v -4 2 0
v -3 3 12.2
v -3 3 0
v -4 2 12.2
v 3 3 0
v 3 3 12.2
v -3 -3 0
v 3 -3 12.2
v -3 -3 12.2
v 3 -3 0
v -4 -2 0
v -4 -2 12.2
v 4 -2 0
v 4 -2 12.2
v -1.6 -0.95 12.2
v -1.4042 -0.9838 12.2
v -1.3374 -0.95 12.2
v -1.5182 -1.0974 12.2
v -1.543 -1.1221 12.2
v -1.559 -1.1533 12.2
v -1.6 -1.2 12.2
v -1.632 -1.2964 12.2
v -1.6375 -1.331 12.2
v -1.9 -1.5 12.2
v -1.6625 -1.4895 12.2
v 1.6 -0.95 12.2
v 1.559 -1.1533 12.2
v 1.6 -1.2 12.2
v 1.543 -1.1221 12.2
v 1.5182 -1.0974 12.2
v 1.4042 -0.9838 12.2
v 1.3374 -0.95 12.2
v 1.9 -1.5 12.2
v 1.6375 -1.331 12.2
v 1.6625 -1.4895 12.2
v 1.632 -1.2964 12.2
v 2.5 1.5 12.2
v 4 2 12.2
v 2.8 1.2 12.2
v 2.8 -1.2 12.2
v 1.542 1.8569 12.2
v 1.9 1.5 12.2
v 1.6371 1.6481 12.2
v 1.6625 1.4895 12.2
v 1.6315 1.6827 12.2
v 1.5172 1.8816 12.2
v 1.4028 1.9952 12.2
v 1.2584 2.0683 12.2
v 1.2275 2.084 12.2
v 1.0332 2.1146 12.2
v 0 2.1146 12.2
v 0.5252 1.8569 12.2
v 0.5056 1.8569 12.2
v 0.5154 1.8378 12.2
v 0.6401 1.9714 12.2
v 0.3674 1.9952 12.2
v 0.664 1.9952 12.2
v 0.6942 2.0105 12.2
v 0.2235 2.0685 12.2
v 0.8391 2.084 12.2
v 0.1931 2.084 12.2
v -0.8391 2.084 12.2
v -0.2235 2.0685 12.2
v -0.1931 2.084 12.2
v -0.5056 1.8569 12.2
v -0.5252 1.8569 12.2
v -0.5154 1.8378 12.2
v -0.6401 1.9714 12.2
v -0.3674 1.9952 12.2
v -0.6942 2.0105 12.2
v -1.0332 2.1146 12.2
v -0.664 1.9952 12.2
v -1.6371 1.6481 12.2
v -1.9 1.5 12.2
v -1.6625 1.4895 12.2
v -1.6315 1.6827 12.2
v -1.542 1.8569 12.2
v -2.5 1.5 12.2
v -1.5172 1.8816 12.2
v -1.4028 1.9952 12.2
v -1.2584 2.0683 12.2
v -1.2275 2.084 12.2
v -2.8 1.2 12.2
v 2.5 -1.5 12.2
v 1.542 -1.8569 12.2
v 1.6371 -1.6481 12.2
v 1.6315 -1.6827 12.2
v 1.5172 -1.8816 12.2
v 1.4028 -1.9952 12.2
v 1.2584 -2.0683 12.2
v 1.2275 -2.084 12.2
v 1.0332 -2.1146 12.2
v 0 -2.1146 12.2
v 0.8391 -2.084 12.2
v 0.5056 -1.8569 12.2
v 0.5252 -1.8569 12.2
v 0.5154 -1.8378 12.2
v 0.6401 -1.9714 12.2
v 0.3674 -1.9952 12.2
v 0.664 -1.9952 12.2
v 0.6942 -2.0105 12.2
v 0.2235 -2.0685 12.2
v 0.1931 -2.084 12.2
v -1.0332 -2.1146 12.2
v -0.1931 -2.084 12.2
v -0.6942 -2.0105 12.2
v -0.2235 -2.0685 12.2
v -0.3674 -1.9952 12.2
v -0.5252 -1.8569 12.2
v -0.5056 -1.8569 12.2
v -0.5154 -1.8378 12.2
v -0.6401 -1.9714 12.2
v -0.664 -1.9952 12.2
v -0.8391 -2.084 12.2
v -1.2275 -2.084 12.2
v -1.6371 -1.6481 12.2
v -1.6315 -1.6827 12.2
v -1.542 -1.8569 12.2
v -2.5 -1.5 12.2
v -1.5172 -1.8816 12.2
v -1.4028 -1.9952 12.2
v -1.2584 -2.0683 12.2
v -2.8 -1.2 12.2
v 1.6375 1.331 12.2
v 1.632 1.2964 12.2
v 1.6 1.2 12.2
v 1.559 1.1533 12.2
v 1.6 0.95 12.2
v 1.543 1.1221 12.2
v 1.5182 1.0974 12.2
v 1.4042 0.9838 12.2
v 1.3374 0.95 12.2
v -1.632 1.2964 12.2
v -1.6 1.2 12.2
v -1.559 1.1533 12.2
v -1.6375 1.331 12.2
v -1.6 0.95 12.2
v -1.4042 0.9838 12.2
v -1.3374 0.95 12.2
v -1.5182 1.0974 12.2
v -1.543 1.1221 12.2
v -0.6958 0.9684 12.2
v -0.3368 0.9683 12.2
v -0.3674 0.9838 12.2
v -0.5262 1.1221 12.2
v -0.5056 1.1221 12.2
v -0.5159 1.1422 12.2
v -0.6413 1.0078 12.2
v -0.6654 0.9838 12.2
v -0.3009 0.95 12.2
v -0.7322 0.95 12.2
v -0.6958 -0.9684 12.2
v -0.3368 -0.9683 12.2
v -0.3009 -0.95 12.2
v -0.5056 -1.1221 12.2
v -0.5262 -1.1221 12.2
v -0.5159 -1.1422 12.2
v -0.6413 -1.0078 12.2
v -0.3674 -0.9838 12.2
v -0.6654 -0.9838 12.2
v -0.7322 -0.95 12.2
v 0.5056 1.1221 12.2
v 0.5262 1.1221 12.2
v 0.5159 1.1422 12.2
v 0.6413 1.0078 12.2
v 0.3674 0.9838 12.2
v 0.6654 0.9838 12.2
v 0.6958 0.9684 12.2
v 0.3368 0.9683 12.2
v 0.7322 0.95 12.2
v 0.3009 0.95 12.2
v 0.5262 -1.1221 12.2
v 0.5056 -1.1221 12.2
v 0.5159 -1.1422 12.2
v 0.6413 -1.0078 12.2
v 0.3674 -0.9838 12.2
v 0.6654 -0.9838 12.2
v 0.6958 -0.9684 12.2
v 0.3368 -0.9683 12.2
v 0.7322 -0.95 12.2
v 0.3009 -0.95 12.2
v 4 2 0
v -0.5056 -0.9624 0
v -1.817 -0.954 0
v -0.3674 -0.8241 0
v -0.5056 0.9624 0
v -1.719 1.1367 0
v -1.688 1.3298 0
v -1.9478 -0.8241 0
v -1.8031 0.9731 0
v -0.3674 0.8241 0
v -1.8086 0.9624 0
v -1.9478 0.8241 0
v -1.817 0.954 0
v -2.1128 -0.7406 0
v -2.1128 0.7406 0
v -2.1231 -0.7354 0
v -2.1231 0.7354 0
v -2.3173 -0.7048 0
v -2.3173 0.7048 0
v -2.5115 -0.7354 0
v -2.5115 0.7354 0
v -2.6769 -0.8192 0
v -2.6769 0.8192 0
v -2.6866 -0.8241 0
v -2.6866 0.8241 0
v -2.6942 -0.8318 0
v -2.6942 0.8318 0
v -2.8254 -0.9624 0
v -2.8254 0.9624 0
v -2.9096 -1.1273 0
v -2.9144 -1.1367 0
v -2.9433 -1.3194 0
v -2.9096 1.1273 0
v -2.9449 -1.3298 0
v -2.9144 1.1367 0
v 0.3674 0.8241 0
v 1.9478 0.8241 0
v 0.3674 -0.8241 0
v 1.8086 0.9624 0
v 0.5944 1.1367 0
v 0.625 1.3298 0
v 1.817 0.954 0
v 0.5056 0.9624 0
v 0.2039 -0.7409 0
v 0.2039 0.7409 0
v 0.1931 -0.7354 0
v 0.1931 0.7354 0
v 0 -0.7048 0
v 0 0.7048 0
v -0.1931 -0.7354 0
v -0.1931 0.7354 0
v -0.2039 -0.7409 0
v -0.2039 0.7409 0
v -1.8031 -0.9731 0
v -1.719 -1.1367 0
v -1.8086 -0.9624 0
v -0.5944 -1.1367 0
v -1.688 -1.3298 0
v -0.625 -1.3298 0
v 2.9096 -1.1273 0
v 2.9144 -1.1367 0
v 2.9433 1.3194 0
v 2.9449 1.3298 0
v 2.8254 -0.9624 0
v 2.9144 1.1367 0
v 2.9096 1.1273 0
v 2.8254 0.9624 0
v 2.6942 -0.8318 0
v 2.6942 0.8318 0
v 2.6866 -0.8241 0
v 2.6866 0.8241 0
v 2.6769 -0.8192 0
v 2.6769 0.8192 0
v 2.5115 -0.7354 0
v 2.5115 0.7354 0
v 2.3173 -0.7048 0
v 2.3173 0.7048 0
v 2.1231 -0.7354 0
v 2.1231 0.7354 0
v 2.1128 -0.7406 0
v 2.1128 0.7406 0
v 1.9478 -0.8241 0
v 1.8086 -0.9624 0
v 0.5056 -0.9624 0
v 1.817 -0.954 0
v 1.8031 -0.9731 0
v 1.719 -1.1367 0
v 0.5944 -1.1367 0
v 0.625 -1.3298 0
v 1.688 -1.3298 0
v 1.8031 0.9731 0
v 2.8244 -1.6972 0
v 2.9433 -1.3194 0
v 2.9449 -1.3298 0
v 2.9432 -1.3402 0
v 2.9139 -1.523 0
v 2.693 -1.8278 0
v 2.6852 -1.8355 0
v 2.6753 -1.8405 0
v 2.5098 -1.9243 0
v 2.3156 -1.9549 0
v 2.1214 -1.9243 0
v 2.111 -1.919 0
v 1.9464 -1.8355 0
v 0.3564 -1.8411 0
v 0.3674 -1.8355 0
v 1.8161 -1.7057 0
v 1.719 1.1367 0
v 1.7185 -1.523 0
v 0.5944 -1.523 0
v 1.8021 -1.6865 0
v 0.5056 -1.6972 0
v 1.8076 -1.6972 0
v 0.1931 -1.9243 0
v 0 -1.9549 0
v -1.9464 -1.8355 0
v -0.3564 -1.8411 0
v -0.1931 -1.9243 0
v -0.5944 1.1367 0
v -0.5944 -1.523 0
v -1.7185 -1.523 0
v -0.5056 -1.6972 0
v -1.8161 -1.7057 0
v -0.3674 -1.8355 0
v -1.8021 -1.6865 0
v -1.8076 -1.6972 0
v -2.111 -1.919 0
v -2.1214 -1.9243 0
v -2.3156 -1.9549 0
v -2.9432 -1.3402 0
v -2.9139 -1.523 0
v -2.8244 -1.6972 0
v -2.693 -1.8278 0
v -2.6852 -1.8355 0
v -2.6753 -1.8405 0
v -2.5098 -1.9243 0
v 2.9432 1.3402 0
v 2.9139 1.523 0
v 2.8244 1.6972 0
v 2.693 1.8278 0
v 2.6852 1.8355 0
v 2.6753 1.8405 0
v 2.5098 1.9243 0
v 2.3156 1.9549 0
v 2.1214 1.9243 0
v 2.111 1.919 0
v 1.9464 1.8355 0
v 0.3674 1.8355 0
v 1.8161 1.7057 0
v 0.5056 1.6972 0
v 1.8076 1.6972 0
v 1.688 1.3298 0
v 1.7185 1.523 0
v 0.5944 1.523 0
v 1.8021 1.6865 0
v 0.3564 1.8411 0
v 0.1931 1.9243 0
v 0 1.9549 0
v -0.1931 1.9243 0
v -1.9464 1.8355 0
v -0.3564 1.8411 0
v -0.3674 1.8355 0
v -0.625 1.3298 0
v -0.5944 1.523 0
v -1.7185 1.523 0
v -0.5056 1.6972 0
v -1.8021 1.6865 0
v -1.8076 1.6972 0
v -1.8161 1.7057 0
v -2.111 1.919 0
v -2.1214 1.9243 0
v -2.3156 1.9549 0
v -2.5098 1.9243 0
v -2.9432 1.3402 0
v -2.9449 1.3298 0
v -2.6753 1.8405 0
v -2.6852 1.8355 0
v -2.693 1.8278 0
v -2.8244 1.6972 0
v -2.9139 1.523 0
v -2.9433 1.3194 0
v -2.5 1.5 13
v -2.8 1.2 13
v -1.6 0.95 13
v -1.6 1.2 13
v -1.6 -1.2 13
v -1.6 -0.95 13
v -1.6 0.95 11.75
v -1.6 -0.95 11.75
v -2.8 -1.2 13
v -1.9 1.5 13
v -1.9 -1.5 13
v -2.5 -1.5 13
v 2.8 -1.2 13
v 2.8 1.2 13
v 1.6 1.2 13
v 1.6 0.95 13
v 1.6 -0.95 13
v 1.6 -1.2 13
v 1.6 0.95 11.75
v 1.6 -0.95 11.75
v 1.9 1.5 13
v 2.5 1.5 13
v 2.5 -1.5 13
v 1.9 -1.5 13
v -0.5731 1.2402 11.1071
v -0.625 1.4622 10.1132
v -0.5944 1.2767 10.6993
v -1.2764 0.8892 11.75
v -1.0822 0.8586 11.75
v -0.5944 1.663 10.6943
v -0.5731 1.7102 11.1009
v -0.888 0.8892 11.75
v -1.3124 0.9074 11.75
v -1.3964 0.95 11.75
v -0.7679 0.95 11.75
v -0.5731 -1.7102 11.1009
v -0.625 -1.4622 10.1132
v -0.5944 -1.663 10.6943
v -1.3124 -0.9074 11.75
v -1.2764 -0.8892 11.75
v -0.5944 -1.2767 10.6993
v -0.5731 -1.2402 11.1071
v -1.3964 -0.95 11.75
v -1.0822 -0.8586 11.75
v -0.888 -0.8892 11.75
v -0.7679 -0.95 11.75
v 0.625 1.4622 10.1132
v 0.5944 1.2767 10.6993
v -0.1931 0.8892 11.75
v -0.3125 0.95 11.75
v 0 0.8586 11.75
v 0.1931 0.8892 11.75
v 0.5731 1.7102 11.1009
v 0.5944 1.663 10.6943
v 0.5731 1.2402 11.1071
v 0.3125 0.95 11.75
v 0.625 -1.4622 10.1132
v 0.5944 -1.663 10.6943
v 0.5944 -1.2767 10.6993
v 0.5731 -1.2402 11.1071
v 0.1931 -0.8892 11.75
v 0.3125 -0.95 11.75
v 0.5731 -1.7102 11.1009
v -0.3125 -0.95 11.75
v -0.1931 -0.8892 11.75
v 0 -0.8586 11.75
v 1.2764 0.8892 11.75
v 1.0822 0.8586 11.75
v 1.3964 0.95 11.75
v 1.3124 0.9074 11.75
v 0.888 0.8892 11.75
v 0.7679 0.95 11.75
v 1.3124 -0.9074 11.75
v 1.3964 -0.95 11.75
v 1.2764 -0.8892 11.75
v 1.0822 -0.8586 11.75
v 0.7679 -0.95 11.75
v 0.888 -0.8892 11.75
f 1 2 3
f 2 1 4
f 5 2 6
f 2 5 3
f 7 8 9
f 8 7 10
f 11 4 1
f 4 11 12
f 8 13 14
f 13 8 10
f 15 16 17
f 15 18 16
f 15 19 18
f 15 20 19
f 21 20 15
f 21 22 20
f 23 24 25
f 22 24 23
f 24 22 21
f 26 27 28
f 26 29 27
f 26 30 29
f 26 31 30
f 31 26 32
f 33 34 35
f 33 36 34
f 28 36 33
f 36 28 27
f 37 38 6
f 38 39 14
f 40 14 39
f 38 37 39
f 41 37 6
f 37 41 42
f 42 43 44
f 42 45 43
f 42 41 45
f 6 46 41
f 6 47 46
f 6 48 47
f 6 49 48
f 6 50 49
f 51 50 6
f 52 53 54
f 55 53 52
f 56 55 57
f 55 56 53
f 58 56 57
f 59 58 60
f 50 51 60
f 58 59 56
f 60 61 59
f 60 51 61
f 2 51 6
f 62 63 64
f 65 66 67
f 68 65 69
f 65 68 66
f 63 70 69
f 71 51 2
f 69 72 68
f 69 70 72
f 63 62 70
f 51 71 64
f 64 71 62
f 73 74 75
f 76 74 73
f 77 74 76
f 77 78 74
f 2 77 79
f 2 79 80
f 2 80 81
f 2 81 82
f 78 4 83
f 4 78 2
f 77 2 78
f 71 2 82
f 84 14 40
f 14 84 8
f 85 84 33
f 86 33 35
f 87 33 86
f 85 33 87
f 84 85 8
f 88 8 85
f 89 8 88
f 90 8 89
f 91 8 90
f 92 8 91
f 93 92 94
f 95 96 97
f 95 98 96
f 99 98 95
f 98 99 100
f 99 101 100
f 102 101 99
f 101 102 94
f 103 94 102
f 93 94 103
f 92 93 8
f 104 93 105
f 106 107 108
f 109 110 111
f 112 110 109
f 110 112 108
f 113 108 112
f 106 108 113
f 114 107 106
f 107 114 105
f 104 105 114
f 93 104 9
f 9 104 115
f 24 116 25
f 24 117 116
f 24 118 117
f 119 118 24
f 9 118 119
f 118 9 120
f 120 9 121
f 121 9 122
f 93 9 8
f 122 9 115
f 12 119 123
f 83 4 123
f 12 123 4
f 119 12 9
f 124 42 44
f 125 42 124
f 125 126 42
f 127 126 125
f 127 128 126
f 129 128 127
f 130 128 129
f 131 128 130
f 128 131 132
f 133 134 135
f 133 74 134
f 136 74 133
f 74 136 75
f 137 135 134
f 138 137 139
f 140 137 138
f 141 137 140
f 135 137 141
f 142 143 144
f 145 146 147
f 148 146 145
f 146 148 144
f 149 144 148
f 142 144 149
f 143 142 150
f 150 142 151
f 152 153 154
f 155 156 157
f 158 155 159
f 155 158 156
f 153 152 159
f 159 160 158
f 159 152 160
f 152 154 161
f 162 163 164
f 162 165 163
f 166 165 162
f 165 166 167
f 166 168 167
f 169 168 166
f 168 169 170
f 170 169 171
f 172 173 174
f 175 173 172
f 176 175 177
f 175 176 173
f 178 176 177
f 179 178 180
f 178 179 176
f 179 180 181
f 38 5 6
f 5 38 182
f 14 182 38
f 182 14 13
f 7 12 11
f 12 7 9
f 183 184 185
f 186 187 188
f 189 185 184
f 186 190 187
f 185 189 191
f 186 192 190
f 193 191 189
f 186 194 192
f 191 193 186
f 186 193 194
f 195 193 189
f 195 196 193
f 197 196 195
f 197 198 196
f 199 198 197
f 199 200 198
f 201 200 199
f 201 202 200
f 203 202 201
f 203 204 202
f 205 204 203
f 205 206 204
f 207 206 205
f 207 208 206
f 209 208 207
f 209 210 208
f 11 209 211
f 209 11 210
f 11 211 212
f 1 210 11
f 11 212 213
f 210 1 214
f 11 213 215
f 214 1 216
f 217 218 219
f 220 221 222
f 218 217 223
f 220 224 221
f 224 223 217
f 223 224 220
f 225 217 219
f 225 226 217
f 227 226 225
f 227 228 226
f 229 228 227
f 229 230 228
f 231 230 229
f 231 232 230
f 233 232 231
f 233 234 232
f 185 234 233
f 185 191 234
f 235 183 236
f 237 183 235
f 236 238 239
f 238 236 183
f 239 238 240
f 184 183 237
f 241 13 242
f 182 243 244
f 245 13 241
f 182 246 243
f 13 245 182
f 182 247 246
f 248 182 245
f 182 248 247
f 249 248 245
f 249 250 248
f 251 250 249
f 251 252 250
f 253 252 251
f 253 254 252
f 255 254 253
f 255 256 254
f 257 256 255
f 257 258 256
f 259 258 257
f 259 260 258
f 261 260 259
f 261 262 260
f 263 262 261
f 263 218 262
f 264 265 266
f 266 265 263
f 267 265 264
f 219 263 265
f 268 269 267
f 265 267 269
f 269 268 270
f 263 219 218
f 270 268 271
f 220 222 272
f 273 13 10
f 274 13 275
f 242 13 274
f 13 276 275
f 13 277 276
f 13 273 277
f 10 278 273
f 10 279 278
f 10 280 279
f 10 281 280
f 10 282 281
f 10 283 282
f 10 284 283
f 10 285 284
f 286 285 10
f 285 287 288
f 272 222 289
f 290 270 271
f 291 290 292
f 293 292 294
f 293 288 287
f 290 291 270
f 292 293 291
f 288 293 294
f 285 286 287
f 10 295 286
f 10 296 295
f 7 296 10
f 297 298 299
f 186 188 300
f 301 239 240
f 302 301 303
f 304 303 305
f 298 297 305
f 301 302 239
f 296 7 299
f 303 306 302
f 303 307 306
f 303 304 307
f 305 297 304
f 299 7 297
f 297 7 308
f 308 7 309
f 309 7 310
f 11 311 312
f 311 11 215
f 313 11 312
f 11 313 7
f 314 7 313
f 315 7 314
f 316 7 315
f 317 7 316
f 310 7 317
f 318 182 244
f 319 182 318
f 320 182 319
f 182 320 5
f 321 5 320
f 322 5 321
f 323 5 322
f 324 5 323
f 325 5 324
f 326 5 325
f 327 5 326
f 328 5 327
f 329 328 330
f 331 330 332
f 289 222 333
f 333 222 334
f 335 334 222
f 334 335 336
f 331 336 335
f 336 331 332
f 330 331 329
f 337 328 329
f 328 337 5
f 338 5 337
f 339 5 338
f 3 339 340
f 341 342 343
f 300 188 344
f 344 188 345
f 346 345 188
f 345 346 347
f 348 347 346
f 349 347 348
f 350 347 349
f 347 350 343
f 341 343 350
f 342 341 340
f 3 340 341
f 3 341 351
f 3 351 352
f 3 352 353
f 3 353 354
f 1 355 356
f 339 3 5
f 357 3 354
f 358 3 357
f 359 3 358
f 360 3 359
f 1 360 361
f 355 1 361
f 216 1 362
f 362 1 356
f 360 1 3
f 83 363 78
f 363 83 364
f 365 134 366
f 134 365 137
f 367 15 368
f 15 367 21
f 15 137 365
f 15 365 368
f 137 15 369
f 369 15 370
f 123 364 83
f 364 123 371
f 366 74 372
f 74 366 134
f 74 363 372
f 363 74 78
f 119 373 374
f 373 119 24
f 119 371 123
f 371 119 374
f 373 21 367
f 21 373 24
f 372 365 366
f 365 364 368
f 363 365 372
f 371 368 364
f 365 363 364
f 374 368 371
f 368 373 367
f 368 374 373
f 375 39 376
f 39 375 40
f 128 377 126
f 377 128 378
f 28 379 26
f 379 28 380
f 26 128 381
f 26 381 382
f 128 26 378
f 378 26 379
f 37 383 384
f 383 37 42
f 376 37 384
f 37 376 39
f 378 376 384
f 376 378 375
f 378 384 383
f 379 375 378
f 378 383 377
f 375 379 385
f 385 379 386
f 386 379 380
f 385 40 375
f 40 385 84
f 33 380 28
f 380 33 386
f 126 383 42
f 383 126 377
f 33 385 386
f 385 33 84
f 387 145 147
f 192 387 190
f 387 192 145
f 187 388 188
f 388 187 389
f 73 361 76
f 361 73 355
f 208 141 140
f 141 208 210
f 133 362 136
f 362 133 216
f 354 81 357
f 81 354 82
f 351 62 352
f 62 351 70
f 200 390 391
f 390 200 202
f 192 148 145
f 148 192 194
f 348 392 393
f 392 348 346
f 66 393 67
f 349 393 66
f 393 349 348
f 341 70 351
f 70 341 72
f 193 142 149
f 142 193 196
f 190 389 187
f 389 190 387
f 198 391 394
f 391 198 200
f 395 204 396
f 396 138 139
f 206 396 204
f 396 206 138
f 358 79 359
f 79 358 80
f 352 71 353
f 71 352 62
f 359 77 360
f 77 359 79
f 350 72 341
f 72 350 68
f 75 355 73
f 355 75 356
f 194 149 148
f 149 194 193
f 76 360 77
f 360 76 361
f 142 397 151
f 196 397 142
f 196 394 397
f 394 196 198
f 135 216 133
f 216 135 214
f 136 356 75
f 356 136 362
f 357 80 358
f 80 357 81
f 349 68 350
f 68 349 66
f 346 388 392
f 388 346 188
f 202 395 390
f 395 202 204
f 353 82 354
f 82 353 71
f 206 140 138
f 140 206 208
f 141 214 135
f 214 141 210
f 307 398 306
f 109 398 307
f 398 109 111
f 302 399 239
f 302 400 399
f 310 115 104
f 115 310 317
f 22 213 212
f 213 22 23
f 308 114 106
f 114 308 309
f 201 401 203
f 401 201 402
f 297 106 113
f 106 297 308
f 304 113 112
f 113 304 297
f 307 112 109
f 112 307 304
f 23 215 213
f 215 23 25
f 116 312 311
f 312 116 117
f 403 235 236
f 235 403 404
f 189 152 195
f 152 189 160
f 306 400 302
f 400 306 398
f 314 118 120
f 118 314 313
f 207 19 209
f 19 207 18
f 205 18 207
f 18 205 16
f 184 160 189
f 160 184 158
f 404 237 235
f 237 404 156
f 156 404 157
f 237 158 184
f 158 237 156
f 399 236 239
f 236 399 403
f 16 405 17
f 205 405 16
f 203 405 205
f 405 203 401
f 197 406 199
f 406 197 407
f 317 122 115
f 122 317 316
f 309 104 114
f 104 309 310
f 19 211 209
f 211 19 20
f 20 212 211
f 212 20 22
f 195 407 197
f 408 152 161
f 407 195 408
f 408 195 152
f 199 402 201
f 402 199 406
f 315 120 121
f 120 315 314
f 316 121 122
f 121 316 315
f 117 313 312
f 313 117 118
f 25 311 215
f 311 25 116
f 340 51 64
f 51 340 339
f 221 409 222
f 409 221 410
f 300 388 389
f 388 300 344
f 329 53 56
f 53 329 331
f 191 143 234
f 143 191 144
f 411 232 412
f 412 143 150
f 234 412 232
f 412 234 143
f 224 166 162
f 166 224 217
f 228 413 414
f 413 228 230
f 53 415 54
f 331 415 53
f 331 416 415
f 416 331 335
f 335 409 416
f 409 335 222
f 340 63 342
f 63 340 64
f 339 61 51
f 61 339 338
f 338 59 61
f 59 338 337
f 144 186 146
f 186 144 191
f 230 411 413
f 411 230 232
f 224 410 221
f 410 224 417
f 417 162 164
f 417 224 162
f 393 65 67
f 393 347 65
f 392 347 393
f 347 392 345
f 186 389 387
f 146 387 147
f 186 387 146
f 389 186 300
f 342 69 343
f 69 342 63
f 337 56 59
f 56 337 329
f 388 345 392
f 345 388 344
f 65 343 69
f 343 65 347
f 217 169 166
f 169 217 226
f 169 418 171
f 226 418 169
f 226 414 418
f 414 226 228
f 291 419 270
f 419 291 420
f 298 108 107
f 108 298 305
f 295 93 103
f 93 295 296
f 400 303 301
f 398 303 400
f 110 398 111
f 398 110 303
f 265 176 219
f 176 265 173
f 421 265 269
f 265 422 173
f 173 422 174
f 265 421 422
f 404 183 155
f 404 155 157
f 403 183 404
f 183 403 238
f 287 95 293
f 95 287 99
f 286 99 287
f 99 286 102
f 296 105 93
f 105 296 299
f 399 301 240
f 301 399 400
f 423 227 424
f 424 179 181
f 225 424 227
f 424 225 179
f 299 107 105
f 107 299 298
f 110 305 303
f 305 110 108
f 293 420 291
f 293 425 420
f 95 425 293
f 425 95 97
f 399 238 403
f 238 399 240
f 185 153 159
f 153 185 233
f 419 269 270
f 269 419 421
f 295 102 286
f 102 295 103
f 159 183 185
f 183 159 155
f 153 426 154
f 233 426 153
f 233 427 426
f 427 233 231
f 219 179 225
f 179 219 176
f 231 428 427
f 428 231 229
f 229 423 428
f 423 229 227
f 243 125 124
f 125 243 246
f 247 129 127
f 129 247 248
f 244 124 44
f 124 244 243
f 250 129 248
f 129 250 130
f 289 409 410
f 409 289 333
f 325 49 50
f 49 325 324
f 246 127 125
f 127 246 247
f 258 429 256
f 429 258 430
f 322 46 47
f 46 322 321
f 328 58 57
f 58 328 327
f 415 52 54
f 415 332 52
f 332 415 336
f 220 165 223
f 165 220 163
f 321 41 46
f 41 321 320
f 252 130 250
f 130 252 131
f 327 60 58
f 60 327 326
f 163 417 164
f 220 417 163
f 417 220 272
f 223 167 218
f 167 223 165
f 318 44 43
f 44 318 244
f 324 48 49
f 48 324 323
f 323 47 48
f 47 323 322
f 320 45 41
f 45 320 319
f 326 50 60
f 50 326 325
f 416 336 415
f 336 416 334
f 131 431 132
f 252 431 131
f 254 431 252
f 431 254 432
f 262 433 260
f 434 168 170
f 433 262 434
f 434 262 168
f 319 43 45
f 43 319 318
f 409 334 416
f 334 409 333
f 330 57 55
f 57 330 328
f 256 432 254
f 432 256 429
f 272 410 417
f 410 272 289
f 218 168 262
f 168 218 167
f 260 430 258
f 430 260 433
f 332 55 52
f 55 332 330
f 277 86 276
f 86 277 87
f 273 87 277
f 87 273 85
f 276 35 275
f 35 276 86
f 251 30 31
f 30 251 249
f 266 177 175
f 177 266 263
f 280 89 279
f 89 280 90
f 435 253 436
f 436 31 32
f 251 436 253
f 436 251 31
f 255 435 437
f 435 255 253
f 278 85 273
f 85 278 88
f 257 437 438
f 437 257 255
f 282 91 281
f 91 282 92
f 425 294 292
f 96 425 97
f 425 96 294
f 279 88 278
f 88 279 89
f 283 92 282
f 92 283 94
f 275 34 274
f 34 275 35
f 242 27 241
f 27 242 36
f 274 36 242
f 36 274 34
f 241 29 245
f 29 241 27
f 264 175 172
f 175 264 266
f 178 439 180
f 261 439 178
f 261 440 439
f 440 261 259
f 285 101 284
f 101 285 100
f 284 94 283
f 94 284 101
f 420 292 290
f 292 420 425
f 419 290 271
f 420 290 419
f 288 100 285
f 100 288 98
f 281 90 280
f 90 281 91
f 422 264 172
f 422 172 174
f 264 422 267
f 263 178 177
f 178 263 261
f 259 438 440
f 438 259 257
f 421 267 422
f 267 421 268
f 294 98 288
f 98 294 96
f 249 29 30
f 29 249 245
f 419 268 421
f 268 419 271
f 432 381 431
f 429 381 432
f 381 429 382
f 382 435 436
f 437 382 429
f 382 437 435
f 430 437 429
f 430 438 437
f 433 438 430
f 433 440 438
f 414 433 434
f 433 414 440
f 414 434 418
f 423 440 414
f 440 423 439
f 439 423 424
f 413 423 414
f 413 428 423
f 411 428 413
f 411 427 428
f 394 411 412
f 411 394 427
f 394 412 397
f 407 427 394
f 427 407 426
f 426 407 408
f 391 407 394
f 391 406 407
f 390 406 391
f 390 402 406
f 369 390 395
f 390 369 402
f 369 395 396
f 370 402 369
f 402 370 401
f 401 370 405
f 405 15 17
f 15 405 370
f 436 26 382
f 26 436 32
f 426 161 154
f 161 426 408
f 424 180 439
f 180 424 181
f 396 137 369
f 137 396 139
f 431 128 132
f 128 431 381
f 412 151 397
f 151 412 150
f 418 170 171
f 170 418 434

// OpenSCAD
// file: lib/utils.scad
module xz_toward_y()
{
	scale([1, 1, -1])
	rotate([-90,0,0])
	children();
}

module anchor(dim, anchor=[0,0,0])
{
	translate([-(1+anchor.x)*dim.x/2, -(1+anchor.y)*dim.y/2, -(1+anchor.z)*dim.z/2])
	children();
}

module block(dim, anchor=[0,0,0])
{
	anchor(dim, anchor)
	cube(dim);
}

module rounded_block_z(dim, anchor=[0,0,0], r=0)
{
	anchor(dim, anchor)
	linear_extrude(dim.z)
	hull()
	for (p=[ [r,r], [dim.x-r, r], [dim.x-r, dim.y-r], [r, dim.y-r] ] )
	translate(p)
	circle(r);
}

module rounded_block_y(dim, anchor=[0,0,0], r=0)
{
	anchor(dim, anchor)
	xz_toward_y()
	linear_extrude(dim.y)
	hull()
	for (p=[ [r,r], [dim.x-r, r], [dim.x-r, dim.z-r], [r, dim.z-r] ] )
	translate(p)
	circle(r);
}

module chamfer_block_y(dim, anchor=[0,0,0], r=0)
{
	anchor(dim, anchor)
	hull()
	{
		translate([r,0,0])
		cube([dim.x-r*2, dim.y, dim.z]);

		translate([0,0,r])
		cube([dim.x, dim.y, dim.z-r*2]);
	}
}

module chamfer_block_z(dim, anchor=[0,0,0], r=0)
{
	anchor(dim, anchor)
	hull()
	{
		translate([r,0,0])
		cube([dim.x-r*2, dim.y, dim.z]);

		translate([0,r,0])
		cube([dim.x, dim.y-r*2, dim.z]);
	}
}

module chamfer_block(dim, anchor=[0,0,0], r=0)
{
	anchor(dim, anchor)
	hull()
	{
		translate([r,r,0])
		cube([dim.x-r*2, dim.y-r*2, dim.z]);

		translate([r,0,r])
		cube([dim.x-r*2, dim.y, dim.z-r*2]);

		translate([0,r,r])
		cube([dim.x, dim.y-r*2, dim.z-r*2]);
	}
}

module at_grid(c,r,pitch,anchor=[0,0,0])
{
	dim=[(c-1)*pitch,(r-1)*pitch,1];
	a=[anchor[0],anchor[1],-1];
	anchor(dim,a)
	for(x=[0:c-1])
	for(y=[0:r-1])
	translate([x*pitch,y*pitch,0])
	children();
}

module ngon_outer(n,h,r)
{
	cylinder(h,r=r, $fn=n);
}

module ngon_inner(n,h,r)
{
	a=360/n/2;
	r_cyl = r/cos(a);
	rotate([0,0,a])
	cylinder(h,r=r_cyl, $fn=n);
}


module ngon_cone_outer(n,h,r1,r2)
{
	cylinder(h,r1=r1,r2=r2, $fn=n);
}

module ngon_cone_inner(n,h,r1,r2)
{
	a=360/n/2;
	r1_cyl = r1/cos(a);
	r2_cyl = r2/cos(a);
	rotate([0,0,a])
	cylinder(h,r1=r1_cyl,r2=r2_cyl, $fn=n);
}

module preview()
{
	if ($preview)
	children();
}
// main file
e=.001;
m=.3;
$fn=20;

include <lib/utils.scad>;

pitch = .95;

pogo_h_normal = 16;
pogo_h_min = pogo_h_normal - 2;
pogo_d = .65;

pogo_dy = 1.5;

package_dim = [ 2.9+m, 1.6+m, 1.25 ] ;

module package()
{
//	color("#202020")
	block(package_dim, [0,0,-1]);
}

module at_pins(ax=0,ay=0)
{
	for (x=[-1,0,1])
	for (y=[-pogo_dy,pogo_dy])
	translate([x*pitch,y,0])
	rotate([-y*ax,0,0])
	rotate([0,x*ay,0])
	children();
}

module pogopin(m=0)
{
	color("#ffff70")
	translate([0,0,pogo_h_min-pogo_h_normal])
	cylinder(h=pogo_h_normal, d=pogo_d+2*m);
}

module cutouts()
{
	package();

	at_pins(-.5,6)
	pogopin(m=m);
}


module shape()
{
	difference()
	{
		union()
		{
			translate([0,0,.8])
			chamfer_block_z([8,6,12.2],[0,0,-1],1);
			translate([-package_dim.x/2,0,0])
			chamfer_block_z([1.2,3,1],[1,0,-1],.3);
			translate([package_dim.x/2,0,0])
			chamfer_block_z([1.2,3,1],[-1,0,-1],.3);
		}

		cutouts();
	}
}

translate([0,0,13])
rotate([180,0,0])
shape();

preview()
{
	translate([0,10,0])
	{
		#shape();

		at_pins(-.5,6)
		pogopin();
	}


translate([0,10,13])
color("green")
difference()
{
block([10,10,1],[0,0,-1]);
for (x=[-2.54,0,2.54])
for (y=[-1.27,1.27])
translate([x,y,-e])
cylinder(h=1+2*e,d=1);
}
}
